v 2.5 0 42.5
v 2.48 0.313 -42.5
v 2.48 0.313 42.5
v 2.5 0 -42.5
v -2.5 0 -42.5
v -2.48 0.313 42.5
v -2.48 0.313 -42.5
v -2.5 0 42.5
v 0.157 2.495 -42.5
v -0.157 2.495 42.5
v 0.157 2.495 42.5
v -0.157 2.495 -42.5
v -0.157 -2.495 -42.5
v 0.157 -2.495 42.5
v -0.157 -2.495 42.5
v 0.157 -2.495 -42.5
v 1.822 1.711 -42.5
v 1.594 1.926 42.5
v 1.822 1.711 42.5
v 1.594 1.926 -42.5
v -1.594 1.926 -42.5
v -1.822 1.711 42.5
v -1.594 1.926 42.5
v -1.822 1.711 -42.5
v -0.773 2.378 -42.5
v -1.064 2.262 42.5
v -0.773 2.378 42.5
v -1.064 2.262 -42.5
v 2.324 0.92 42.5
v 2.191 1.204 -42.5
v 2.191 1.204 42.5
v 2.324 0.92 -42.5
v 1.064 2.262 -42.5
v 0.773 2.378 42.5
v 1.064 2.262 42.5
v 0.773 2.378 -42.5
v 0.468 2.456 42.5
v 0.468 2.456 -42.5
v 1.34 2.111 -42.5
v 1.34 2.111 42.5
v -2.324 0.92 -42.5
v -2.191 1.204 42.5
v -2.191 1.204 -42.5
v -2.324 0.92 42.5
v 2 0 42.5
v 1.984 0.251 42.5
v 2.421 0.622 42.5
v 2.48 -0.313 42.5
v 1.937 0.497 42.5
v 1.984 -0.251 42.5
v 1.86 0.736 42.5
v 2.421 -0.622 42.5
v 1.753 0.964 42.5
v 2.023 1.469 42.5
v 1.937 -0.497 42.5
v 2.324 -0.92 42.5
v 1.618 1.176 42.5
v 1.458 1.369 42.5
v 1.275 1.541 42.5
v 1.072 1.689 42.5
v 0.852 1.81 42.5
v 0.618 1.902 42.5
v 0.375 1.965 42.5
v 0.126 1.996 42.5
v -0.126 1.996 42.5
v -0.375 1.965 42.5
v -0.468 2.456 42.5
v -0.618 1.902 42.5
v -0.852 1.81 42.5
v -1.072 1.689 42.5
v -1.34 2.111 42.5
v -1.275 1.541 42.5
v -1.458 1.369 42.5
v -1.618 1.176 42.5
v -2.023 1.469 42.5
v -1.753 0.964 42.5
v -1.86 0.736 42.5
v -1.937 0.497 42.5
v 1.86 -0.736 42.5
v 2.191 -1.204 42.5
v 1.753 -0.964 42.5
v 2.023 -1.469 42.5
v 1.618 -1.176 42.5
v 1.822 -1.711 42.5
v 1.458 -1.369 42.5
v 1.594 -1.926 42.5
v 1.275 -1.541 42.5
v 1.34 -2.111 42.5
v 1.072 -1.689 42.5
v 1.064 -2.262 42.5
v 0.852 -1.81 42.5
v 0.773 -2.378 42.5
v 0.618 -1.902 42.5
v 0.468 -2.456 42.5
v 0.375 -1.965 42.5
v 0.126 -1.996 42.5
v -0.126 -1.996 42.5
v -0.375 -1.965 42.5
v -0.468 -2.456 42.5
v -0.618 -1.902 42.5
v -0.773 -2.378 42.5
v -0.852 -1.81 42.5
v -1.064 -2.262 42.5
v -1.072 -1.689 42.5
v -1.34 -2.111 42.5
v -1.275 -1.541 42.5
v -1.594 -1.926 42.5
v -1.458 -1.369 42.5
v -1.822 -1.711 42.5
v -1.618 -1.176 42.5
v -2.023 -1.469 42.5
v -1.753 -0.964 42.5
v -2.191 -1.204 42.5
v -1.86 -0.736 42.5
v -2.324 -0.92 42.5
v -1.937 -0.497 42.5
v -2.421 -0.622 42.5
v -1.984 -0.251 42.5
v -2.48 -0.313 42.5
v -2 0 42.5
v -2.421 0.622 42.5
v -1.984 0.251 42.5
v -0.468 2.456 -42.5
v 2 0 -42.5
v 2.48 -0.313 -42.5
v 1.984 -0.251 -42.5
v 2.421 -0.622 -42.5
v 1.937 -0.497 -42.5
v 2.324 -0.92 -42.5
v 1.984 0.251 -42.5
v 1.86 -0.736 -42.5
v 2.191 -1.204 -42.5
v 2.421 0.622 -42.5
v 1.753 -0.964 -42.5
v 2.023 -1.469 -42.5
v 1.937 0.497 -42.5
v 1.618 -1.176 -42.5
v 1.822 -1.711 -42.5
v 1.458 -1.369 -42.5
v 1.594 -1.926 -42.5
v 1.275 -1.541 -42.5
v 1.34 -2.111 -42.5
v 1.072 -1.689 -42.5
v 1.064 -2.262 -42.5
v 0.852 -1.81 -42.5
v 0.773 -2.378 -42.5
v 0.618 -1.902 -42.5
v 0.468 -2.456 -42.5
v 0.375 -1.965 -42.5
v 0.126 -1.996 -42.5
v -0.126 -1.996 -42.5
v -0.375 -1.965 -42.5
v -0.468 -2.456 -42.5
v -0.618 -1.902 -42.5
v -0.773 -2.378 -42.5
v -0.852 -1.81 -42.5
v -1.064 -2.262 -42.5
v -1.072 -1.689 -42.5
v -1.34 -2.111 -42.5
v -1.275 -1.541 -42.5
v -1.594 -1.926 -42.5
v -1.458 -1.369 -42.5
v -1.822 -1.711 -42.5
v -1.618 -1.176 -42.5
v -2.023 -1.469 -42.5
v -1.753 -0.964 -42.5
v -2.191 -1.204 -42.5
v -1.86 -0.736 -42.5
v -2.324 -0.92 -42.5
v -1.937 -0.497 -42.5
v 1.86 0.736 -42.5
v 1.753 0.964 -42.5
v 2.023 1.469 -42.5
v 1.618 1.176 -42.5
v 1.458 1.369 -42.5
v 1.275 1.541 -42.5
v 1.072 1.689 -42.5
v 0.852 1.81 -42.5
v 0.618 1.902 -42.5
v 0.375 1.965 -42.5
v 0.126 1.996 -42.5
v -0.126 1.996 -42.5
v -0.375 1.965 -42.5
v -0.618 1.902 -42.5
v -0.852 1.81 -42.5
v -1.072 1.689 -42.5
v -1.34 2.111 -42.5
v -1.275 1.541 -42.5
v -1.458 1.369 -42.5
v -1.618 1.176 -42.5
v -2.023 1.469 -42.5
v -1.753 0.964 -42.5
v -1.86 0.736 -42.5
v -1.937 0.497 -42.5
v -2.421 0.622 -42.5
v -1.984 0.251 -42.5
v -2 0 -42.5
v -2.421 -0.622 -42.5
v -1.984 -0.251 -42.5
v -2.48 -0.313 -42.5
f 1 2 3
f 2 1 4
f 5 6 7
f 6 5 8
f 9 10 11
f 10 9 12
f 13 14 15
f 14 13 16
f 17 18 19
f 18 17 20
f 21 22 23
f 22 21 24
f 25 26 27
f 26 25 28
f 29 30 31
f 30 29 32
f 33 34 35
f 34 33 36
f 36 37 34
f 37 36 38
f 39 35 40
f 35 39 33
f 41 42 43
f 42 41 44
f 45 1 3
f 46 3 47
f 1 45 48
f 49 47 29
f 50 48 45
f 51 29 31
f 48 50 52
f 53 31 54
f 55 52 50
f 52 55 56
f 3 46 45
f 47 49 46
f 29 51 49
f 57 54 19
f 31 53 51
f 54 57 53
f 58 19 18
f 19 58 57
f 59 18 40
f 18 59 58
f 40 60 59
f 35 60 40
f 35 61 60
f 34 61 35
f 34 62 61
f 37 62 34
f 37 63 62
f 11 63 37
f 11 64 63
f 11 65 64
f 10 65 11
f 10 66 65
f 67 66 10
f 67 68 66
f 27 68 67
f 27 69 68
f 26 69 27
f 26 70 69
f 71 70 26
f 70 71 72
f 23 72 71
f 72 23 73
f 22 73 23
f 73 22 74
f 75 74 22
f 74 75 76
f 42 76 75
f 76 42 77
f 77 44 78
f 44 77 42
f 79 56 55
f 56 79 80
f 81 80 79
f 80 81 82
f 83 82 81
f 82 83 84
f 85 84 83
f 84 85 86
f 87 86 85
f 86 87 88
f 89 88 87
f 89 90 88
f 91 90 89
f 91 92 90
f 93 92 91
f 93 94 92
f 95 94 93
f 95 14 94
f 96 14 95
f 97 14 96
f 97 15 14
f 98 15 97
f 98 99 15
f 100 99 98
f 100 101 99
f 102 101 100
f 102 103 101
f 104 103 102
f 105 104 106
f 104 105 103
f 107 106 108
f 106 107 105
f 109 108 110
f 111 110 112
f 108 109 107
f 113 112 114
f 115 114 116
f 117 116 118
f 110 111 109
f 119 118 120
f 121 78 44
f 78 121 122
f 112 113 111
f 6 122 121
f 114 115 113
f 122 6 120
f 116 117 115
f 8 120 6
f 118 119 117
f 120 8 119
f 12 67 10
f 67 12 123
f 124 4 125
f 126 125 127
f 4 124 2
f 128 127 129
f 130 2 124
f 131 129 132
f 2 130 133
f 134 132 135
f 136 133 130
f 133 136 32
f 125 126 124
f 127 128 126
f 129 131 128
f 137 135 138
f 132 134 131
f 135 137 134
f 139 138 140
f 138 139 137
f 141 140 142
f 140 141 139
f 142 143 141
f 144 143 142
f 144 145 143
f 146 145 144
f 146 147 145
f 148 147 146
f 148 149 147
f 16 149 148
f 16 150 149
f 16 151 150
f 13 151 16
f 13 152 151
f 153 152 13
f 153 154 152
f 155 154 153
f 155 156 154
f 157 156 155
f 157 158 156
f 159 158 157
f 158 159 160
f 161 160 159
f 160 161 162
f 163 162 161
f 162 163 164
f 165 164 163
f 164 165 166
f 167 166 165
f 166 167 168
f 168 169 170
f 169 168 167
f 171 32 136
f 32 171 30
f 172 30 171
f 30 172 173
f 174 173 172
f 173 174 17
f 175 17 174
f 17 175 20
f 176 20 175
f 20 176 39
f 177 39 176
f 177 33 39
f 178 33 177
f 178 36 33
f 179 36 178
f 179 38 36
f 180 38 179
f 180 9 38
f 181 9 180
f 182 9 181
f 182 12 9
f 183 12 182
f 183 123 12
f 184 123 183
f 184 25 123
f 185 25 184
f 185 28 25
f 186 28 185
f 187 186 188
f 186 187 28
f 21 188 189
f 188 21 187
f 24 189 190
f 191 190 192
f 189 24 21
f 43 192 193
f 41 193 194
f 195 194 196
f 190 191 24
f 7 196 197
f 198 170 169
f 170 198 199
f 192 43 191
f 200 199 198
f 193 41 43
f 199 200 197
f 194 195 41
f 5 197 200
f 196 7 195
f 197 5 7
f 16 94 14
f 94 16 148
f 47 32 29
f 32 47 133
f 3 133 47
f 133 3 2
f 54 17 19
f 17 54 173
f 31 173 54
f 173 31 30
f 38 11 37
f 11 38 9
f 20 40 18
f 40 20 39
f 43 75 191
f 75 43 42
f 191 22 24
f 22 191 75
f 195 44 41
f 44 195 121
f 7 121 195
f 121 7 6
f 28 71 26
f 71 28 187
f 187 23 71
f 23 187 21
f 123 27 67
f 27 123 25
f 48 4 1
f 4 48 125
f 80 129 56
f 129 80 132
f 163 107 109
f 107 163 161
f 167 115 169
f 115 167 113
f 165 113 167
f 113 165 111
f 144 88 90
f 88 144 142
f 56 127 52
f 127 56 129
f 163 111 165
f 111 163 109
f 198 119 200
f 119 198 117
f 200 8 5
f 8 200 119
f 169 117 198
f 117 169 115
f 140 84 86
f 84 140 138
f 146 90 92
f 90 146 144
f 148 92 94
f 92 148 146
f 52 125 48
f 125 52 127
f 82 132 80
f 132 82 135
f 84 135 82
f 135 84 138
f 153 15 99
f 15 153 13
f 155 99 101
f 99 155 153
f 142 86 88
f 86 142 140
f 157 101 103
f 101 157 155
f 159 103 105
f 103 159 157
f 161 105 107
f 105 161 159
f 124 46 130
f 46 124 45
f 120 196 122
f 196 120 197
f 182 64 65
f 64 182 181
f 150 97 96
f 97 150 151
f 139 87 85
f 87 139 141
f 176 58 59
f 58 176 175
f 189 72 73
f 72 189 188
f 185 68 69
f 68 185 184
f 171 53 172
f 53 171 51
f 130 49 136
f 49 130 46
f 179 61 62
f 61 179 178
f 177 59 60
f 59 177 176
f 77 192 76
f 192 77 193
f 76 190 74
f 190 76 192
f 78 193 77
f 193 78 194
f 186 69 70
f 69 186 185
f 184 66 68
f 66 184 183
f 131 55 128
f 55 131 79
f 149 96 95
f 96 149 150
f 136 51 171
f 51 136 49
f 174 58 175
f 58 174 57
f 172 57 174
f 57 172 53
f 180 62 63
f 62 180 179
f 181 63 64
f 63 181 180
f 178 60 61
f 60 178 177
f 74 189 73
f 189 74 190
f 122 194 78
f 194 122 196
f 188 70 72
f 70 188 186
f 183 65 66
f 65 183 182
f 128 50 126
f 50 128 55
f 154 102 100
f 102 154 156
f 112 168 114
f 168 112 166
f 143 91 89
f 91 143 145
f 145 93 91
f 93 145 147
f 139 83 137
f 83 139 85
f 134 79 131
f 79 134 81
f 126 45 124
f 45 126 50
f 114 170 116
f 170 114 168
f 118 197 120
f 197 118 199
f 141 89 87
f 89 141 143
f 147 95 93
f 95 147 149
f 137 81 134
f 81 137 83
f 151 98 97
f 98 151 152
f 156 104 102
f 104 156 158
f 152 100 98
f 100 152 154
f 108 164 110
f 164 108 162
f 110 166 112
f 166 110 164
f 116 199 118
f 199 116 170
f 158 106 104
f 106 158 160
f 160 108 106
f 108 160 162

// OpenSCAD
$fn = 50;


difference() {
	union() {
		translate(v = [0, 0, -42.5000000000]) {
			cylinder(h = 85, r = 2.5000000000);
		}
	}
	union() {
		translate(v = [0, 0, -100.0000000000]) {
			cylinder(h = 200, r = 2.0000000000);
		}
	}
}
